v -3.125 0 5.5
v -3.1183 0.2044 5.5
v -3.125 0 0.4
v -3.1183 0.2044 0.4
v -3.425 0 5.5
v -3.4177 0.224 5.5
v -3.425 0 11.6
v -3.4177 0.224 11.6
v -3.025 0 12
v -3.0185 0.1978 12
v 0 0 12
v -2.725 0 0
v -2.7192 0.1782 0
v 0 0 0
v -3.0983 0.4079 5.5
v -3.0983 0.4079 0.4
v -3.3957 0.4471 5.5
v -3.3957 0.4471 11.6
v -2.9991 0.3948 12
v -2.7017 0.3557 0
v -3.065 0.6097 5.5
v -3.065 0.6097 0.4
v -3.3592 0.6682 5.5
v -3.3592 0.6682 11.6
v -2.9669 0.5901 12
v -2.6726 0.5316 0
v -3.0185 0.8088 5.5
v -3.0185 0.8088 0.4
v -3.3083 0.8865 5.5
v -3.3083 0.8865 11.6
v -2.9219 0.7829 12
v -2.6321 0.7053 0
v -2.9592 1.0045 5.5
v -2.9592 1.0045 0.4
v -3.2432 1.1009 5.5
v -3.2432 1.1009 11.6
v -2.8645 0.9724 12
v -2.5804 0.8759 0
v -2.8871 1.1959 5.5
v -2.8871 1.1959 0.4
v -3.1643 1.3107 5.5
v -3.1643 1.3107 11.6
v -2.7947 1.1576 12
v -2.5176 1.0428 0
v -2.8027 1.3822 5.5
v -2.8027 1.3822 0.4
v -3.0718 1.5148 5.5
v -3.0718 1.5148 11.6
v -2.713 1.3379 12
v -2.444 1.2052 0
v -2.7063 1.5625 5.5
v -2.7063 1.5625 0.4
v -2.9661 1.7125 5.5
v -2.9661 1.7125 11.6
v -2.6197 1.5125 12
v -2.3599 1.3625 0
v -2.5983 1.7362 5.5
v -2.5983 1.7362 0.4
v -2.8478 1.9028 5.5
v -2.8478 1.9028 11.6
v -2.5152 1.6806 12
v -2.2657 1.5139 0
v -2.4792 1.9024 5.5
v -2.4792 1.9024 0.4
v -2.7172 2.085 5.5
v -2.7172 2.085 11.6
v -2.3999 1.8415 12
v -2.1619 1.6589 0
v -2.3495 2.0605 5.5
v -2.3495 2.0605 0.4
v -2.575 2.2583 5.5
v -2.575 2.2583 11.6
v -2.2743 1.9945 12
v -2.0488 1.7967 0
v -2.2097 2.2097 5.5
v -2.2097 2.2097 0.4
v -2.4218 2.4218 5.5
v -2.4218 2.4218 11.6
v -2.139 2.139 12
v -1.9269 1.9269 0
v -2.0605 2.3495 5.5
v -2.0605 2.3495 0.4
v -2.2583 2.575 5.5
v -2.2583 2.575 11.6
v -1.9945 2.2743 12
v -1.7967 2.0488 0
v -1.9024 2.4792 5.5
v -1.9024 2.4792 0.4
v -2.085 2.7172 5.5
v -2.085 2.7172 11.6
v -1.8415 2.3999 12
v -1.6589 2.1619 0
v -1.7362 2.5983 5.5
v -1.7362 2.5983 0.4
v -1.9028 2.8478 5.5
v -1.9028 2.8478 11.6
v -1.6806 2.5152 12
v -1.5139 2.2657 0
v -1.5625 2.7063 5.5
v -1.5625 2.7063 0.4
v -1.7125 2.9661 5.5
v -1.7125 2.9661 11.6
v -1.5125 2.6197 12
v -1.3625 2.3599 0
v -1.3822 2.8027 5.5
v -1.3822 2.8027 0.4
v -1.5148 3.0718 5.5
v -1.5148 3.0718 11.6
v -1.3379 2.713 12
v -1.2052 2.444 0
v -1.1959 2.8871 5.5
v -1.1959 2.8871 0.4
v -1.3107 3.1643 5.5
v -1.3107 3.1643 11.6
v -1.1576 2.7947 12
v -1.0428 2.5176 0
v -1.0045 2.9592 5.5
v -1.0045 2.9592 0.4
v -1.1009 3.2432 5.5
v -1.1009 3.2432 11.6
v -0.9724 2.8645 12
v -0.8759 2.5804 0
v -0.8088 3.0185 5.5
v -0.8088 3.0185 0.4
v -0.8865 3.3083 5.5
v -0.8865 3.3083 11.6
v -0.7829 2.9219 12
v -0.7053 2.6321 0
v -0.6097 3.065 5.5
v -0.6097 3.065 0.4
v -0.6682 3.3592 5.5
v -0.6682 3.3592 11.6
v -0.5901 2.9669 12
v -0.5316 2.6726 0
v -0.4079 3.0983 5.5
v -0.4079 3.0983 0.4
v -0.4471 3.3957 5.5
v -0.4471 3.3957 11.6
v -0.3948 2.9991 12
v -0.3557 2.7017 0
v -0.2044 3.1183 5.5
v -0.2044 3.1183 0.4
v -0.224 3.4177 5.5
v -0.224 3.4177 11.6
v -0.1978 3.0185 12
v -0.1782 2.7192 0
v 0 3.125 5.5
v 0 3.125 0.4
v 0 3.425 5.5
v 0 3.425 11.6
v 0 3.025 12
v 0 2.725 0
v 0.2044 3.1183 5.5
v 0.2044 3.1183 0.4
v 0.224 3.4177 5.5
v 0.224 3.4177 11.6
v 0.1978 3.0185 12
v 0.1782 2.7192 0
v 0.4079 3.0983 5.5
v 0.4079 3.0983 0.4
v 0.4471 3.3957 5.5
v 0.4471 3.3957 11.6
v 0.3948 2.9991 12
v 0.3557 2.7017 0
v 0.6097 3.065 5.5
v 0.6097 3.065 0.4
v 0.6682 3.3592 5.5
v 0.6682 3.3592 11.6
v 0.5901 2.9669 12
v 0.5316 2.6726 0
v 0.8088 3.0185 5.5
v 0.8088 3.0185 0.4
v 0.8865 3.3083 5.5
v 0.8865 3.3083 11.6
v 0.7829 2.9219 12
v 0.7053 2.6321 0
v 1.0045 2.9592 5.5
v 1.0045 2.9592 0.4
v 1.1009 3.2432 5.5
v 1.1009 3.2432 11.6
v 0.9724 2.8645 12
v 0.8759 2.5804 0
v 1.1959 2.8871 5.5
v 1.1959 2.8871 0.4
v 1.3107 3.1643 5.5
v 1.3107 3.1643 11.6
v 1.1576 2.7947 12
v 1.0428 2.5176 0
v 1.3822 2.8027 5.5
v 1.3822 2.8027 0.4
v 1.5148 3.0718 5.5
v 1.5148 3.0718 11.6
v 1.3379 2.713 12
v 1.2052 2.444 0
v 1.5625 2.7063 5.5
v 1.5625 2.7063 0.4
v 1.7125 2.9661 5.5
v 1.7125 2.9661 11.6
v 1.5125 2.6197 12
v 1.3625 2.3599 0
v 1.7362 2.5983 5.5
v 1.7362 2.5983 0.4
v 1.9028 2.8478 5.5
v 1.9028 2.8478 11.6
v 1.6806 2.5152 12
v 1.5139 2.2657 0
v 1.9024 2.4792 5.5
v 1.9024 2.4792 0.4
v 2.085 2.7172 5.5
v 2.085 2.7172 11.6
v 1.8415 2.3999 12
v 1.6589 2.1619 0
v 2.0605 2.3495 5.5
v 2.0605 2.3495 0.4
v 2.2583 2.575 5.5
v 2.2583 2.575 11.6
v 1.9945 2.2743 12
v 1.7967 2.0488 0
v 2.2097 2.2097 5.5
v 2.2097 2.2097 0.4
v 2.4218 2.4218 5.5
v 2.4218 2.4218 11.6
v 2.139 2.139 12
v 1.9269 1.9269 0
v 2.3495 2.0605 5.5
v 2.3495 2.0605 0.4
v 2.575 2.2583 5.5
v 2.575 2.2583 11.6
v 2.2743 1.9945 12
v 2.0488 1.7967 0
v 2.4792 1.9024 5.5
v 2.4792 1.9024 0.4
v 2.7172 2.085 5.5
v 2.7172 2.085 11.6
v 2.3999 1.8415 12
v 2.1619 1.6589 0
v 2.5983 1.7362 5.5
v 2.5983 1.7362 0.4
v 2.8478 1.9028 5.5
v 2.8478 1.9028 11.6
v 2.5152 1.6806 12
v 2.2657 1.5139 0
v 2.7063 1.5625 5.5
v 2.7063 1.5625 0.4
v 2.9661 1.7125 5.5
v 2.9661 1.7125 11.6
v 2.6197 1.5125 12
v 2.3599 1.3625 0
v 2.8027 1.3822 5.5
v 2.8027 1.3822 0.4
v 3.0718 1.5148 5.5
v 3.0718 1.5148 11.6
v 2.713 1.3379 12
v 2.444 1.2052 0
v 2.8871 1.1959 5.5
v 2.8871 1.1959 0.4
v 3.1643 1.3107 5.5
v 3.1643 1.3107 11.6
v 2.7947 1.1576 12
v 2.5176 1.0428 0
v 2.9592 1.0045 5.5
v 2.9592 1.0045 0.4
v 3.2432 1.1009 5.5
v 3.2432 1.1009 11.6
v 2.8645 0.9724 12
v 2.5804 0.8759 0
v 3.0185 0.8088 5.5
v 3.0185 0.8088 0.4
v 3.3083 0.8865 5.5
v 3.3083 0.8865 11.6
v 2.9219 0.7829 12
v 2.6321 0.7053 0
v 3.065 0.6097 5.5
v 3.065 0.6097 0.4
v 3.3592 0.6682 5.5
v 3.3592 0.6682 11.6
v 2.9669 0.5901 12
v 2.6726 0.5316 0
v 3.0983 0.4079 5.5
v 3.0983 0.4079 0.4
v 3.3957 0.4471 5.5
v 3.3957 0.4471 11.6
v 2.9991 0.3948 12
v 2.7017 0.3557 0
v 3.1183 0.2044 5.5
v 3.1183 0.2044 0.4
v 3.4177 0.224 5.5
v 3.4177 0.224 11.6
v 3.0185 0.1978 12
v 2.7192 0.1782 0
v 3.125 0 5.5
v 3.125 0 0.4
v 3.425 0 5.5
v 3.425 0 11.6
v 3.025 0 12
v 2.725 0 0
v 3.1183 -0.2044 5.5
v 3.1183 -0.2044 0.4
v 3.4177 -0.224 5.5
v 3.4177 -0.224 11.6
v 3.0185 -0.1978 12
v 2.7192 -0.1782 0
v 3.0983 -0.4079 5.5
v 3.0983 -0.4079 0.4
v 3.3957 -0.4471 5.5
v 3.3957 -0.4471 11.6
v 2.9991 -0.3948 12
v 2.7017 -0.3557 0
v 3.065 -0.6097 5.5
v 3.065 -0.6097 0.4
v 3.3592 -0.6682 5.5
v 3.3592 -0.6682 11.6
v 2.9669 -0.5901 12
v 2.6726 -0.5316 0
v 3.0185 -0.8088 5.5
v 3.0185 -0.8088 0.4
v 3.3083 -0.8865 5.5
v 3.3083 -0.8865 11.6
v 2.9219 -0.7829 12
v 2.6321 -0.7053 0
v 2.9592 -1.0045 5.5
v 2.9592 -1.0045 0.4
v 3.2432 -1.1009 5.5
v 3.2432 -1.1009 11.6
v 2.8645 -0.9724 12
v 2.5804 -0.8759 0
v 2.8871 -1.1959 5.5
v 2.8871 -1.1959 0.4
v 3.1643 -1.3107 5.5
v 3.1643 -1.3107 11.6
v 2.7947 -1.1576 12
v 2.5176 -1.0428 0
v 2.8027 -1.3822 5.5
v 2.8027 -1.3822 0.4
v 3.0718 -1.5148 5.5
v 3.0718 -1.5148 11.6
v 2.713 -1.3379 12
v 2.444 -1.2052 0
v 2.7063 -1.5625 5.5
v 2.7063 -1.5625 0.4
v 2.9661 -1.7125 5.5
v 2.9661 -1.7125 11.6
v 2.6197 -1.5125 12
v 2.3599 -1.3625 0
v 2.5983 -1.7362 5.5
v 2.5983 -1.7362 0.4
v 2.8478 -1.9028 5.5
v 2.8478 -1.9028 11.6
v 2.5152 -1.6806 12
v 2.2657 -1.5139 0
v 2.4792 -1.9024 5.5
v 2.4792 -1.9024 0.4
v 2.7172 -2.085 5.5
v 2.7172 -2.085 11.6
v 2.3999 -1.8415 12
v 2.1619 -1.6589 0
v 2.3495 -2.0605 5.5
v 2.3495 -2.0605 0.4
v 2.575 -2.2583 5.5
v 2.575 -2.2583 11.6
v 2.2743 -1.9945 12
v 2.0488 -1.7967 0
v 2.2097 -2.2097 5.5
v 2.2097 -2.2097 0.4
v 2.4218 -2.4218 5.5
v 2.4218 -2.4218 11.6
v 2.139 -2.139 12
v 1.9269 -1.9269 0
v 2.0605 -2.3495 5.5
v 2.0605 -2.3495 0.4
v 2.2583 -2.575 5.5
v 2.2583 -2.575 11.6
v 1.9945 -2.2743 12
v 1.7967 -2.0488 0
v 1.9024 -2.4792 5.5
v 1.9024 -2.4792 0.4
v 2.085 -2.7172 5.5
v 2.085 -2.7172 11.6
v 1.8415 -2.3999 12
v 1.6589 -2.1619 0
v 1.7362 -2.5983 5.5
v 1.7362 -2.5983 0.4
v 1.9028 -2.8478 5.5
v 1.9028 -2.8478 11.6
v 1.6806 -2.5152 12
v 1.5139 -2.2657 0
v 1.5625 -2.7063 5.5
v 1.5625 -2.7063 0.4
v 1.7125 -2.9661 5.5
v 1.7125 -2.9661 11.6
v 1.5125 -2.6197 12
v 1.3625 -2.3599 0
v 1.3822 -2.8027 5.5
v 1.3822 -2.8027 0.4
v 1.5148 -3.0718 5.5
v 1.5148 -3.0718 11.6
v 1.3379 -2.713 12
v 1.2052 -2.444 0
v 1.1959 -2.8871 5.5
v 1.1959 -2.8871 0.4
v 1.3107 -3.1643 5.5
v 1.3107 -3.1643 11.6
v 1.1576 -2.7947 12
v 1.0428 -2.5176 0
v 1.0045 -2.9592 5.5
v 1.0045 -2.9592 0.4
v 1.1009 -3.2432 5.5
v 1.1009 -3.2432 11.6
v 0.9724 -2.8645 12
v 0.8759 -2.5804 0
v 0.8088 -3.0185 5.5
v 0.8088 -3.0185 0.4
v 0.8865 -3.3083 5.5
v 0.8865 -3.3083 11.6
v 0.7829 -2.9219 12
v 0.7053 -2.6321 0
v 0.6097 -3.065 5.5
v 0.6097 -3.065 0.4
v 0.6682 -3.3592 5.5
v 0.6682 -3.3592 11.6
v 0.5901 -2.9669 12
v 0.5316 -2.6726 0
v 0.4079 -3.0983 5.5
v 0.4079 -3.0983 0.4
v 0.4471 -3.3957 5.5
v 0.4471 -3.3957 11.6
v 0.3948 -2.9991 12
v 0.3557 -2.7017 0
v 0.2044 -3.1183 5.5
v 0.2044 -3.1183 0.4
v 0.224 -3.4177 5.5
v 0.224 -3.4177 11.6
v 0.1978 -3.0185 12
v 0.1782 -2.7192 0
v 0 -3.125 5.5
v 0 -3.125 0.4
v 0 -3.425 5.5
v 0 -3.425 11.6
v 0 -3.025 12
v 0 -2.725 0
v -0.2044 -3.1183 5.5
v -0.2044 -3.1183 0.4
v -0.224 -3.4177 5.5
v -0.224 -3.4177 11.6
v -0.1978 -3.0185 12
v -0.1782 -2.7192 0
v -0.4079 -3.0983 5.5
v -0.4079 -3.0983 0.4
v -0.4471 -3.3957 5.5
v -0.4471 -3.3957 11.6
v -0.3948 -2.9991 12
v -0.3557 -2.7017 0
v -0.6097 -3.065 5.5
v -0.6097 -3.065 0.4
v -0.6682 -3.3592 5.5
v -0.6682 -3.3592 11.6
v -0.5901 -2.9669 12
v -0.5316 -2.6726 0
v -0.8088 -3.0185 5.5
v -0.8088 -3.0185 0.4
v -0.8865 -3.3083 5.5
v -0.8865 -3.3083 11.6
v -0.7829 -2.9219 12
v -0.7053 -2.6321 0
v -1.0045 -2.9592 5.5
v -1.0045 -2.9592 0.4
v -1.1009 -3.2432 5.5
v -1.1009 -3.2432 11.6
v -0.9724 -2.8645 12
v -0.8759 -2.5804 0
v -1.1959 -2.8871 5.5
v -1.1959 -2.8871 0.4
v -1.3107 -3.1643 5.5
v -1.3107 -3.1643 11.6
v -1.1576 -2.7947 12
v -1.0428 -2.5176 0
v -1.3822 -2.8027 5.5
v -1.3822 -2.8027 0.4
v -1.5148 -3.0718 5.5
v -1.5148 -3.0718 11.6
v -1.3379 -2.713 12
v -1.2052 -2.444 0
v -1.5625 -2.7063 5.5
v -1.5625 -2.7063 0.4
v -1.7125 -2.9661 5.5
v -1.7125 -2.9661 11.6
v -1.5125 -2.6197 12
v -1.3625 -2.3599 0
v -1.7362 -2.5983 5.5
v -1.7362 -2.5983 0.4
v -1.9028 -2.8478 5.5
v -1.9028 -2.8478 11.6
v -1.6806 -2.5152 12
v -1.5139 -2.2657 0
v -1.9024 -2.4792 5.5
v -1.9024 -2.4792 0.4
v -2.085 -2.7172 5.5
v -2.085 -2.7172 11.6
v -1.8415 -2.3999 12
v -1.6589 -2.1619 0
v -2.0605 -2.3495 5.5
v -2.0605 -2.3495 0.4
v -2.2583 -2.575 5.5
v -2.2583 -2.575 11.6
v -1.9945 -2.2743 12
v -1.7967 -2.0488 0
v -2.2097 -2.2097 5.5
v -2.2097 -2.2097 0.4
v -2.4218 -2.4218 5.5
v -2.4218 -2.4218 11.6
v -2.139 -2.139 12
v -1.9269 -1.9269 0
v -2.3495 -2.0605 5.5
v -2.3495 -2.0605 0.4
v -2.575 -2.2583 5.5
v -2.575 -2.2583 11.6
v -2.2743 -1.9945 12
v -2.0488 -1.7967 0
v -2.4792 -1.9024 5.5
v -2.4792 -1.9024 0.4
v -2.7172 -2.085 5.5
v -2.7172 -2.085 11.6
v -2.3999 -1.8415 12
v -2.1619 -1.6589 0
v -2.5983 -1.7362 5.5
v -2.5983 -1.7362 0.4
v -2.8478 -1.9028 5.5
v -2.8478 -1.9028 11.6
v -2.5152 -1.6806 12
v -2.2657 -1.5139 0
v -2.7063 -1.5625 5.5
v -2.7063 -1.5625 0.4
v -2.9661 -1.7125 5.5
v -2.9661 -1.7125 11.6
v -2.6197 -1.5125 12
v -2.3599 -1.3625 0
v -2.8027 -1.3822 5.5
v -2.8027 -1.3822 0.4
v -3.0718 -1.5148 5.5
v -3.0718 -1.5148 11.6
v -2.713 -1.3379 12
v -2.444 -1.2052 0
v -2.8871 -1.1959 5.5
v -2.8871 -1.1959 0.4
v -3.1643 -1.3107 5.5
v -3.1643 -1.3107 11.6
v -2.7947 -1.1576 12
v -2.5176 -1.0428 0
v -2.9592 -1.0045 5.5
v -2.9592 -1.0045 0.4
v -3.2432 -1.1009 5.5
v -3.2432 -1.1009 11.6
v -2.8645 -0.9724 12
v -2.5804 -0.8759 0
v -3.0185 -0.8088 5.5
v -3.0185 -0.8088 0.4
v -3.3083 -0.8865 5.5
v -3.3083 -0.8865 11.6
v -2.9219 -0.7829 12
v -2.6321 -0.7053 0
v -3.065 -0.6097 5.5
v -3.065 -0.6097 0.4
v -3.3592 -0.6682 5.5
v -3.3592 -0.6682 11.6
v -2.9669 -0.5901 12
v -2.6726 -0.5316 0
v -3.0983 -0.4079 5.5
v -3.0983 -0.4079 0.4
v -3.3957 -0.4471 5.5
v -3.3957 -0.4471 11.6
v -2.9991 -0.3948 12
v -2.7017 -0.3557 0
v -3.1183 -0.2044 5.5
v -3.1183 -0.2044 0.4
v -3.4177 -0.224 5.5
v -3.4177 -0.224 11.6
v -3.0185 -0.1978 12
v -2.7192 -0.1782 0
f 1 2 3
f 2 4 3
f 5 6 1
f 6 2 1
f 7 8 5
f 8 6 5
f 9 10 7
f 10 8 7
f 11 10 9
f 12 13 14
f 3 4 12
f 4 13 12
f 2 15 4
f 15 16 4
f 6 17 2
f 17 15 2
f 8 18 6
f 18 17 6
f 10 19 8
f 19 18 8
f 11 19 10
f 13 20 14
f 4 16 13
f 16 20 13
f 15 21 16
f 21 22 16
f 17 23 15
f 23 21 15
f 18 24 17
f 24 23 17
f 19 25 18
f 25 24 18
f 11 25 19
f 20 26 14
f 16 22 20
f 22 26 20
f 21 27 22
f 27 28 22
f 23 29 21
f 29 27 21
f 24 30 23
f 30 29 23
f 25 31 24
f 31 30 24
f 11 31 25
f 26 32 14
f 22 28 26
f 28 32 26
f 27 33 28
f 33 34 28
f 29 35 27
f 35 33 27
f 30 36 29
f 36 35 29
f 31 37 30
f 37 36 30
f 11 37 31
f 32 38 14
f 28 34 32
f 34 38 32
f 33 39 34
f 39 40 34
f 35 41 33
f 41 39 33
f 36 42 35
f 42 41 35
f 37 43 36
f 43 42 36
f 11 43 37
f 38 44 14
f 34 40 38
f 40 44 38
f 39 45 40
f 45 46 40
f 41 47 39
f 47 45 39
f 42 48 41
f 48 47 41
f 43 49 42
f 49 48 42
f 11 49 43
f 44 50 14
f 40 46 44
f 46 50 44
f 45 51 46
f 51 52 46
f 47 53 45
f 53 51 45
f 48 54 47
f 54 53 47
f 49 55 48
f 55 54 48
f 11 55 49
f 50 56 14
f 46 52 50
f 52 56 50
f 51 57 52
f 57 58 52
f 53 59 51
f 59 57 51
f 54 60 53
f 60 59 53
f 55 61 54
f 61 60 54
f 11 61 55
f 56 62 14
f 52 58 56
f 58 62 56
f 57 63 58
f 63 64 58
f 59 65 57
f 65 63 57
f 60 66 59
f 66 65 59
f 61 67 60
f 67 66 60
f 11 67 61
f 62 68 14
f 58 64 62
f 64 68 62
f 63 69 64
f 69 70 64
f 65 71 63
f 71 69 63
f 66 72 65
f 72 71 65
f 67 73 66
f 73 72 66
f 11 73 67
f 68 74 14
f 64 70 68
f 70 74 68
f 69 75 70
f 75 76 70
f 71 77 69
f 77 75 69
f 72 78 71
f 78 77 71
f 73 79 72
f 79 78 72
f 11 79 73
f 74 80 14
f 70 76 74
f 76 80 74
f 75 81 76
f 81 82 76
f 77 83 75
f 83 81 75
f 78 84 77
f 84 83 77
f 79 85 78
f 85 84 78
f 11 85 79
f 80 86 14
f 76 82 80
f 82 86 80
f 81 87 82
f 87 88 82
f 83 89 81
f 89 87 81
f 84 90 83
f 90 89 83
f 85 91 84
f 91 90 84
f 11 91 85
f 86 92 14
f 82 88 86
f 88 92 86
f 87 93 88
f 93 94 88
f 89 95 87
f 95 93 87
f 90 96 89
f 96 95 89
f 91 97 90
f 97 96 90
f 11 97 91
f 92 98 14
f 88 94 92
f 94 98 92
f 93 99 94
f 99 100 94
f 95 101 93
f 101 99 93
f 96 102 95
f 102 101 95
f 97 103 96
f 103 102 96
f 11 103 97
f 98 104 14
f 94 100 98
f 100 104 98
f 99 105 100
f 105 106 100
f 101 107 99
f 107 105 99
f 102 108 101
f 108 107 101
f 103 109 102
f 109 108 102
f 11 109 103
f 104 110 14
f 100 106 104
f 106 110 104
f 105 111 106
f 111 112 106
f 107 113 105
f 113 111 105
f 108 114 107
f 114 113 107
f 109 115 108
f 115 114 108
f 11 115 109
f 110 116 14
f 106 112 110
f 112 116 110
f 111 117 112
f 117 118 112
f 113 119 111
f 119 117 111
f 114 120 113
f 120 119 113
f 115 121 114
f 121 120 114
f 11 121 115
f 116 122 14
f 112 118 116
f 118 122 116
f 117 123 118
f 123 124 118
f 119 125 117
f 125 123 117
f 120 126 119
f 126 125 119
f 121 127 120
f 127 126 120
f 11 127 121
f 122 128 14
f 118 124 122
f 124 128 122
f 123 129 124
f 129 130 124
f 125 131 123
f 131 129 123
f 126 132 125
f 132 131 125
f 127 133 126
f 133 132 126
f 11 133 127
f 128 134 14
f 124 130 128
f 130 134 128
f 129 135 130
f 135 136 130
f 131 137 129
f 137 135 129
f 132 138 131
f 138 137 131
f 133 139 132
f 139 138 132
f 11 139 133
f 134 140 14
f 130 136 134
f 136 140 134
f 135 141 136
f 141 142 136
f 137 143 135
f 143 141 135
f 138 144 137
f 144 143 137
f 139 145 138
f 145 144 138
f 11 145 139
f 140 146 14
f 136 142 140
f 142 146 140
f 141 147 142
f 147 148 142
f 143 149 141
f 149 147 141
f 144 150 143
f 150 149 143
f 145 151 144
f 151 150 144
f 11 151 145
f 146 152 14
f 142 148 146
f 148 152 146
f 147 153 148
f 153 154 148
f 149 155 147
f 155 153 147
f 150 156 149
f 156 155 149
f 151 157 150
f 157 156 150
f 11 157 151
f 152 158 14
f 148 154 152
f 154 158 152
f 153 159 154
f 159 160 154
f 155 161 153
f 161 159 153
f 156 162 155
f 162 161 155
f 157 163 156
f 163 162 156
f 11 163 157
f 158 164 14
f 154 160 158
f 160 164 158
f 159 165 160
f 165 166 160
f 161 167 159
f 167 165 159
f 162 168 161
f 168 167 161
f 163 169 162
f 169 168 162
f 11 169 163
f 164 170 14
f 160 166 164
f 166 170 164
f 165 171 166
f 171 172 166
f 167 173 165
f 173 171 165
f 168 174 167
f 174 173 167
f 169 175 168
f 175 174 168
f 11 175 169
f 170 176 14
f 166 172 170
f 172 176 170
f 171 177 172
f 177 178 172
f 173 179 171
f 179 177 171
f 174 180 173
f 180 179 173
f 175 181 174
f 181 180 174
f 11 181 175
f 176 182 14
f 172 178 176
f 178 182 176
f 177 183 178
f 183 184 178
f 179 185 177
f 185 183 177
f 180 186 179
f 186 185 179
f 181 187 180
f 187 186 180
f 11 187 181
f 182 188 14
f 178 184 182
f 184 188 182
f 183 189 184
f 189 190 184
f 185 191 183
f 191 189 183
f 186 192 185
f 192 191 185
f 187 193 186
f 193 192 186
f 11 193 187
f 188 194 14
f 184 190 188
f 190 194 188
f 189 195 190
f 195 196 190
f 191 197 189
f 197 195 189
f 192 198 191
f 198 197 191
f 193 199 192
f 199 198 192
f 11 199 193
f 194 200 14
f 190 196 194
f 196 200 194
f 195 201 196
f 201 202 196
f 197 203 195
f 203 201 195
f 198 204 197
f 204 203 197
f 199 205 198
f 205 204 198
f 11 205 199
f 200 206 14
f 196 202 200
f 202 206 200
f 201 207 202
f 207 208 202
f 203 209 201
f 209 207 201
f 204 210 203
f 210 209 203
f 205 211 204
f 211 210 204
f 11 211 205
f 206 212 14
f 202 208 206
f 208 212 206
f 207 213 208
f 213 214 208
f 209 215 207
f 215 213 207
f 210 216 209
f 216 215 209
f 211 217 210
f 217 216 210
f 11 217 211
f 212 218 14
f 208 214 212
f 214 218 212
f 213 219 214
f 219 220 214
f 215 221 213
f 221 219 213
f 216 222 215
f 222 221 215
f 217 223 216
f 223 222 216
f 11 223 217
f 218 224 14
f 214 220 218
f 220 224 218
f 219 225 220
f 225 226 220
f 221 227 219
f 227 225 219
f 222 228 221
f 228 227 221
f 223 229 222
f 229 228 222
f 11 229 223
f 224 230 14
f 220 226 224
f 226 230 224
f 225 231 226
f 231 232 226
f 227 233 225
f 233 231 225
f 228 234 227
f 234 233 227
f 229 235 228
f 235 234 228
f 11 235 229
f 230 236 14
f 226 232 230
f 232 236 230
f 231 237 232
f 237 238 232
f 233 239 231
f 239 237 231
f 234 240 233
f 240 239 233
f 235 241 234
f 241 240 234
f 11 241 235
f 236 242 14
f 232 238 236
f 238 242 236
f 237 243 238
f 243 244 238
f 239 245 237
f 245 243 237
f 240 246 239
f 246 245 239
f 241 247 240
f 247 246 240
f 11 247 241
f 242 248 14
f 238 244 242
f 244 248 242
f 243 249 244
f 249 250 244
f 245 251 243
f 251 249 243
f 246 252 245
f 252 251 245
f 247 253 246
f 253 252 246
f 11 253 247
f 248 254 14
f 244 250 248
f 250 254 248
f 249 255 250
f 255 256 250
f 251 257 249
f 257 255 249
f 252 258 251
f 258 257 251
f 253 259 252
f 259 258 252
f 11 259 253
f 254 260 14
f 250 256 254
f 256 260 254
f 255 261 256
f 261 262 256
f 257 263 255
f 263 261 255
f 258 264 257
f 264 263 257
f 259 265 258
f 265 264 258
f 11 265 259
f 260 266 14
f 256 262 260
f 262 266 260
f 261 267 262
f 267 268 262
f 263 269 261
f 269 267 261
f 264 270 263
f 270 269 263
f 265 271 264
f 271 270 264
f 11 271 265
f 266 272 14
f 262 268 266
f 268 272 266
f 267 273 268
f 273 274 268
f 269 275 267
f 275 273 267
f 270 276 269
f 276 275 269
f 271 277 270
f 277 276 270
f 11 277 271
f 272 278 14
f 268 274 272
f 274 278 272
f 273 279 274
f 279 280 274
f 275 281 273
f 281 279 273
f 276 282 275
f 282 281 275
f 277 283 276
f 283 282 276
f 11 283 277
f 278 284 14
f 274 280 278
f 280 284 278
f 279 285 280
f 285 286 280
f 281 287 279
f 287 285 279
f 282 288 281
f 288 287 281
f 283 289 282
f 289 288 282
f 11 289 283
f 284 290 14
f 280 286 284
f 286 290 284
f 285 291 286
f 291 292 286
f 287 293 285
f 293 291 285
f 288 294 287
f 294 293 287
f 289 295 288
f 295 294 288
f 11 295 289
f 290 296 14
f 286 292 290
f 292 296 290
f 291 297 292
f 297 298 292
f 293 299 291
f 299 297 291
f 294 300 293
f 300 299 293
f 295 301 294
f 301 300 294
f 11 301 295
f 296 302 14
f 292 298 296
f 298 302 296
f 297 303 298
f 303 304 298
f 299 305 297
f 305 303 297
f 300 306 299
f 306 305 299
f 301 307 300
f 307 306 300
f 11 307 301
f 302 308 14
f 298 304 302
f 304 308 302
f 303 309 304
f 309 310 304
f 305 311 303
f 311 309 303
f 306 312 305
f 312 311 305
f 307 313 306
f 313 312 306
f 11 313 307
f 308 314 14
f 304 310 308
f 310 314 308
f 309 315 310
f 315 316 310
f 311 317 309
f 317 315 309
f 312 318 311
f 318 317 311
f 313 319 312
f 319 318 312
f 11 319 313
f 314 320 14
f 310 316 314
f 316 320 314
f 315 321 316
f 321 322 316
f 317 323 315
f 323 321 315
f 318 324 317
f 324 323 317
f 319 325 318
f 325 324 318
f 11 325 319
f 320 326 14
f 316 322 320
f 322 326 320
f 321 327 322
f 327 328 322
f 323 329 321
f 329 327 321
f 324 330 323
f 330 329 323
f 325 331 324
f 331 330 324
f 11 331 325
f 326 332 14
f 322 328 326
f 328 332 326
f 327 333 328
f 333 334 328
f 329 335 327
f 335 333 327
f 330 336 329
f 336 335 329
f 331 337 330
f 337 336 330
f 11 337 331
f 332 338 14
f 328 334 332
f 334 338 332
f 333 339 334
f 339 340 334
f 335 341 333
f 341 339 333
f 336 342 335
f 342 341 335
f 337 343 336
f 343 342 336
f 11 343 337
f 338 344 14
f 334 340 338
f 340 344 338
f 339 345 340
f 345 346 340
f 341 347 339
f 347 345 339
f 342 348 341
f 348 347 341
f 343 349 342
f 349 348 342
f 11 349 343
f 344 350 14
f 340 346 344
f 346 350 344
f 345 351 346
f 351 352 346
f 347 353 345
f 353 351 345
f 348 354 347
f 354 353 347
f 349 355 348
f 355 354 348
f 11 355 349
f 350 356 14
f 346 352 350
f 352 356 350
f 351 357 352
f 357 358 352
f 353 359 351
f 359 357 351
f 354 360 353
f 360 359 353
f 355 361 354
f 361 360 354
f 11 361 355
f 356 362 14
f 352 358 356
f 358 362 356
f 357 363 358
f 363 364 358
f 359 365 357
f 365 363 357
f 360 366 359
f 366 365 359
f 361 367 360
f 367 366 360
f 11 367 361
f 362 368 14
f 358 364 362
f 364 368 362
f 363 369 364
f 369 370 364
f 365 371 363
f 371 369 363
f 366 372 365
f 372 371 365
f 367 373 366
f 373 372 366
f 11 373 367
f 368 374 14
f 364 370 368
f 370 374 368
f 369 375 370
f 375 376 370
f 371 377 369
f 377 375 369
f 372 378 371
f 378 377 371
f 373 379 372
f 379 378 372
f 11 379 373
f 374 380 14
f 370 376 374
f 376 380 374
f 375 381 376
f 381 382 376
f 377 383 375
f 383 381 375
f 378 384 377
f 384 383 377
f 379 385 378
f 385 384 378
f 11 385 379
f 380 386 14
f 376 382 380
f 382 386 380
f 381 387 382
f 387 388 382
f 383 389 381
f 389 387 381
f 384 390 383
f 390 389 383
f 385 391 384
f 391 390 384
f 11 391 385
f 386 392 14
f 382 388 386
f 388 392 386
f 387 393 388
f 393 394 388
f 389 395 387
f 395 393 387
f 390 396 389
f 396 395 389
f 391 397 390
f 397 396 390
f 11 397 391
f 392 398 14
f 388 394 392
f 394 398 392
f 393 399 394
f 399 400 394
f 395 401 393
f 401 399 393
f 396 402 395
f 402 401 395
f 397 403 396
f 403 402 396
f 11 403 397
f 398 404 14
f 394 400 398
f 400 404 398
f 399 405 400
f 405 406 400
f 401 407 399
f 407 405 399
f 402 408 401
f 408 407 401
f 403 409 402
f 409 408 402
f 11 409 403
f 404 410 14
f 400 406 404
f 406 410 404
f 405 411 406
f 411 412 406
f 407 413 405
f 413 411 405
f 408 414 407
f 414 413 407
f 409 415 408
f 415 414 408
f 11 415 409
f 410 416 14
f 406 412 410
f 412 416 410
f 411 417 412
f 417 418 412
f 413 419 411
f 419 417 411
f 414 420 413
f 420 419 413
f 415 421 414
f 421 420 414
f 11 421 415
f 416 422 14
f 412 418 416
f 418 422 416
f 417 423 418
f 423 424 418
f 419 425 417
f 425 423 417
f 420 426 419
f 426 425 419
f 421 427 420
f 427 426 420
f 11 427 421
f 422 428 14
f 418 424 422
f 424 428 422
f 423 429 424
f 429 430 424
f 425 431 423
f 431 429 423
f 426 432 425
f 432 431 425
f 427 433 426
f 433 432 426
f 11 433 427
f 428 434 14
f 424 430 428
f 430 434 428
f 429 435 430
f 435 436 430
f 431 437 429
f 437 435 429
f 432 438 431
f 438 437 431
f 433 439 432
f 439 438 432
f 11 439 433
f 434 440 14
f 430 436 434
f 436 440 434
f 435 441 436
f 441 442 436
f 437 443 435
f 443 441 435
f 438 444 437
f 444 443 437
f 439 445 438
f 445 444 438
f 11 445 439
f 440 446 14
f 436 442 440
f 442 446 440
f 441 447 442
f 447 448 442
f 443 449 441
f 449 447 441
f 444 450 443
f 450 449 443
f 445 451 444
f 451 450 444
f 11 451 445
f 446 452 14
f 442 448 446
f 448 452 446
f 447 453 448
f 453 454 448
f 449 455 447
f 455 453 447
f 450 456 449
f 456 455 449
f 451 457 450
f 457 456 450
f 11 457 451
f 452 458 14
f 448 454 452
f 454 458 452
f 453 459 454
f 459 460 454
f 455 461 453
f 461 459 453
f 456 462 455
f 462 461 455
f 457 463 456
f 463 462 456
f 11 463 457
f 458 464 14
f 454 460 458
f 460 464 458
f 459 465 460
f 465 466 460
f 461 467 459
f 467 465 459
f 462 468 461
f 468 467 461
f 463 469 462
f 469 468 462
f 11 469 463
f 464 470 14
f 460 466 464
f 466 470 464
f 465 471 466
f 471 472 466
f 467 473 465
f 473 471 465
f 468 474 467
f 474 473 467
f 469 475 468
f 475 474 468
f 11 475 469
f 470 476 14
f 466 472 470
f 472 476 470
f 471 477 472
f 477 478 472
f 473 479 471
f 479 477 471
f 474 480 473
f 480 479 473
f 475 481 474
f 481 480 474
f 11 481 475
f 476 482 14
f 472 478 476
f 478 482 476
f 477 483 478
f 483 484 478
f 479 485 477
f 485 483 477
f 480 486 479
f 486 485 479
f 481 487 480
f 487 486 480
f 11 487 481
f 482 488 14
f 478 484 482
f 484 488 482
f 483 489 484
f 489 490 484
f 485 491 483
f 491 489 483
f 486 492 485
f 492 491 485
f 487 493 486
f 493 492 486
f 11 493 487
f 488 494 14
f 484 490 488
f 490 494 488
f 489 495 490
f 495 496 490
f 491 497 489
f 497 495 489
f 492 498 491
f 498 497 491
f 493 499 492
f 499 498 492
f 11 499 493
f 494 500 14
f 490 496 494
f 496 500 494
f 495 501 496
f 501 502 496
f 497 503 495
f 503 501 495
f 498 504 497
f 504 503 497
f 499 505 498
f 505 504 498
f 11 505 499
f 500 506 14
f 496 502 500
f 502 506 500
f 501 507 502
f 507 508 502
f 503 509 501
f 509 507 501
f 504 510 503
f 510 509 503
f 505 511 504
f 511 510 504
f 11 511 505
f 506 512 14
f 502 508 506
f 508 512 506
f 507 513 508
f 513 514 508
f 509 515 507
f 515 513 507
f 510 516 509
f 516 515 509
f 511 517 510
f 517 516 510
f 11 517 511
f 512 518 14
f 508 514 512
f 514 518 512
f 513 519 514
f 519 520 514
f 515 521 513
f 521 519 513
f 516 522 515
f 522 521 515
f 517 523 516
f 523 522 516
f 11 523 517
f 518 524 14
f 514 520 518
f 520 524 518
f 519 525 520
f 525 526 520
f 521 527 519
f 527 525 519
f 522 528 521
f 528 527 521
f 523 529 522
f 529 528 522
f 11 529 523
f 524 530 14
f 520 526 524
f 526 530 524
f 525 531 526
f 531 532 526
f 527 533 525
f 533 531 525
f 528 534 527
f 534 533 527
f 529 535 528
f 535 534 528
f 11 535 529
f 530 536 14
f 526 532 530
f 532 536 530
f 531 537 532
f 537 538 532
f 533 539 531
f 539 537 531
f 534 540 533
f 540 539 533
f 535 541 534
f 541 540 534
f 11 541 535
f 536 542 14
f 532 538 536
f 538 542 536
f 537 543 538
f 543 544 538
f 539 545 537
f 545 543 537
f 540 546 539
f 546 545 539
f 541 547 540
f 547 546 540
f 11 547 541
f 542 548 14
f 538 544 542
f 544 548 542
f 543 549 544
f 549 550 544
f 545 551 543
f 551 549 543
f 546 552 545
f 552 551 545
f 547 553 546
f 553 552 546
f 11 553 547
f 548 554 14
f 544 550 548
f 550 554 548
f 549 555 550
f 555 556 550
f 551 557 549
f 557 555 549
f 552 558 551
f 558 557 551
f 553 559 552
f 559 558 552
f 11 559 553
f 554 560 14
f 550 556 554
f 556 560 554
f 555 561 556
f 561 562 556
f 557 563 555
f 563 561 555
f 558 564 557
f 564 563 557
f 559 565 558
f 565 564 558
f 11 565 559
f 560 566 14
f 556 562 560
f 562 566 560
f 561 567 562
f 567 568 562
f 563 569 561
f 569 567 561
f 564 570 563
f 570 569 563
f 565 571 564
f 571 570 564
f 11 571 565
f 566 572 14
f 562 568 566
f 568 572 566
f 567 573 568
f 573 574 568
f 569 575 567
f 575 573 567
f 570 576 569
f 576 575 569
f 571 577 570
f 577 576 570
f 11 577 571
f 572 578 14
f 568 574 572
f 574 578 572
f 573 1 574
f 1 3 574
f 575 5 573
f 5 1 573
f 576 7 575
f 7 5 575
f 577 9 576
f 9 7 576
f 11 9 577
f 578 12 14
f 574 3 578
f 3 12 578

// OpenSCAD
// file: ../lib/project/bic_eraser_plug.scad
// Reusable geometry for Bic mechanical pencil eraser replacement plugs.
// Z origin is at the bottom of the insert; +Z points toward the eraser cap.

module bic_eraser_plug(
  insert_diameter,
  insert_height,
  head_diameter = 0,
  head_height = 0,
  bottom_chamfer = 0.4,
  top_chamfer = 0.4
) {
  effective_head_diameter = head_diameter > 0 ? head_diameter : insert_diameter;
  effective_head_height = head_height > 0 ? head_height : 0;
  body_height = insert_height - effective_head_height;
  insert_radius = insert_diameter / 2;
  head_radius = effective_head_diameter / 2;
  bottom_chamfer_radius = min(bottom_chamfer, insert_radius, insert_height / 2);
  top_chamfer_radius = min(top_chamfer, head_radius, insert_height / 2);
  body_top_z = effective_head_height > 0 ? body_height : insert_height;
  top_start_z = insert_height - top_chamfer_radius;

  if (body_height <= 0) {
    assert(false, "insert_height must be larger than head_height");
  }

  rotate_extrude()
    polygon(concat(
      [[0, 0]],
      bottom_chamfer_radius > 0
        ? [[insert_radius - bottom_chamfer_radius, 0], [insert_radius, bottom_chamfer_radius]]
        : [[insert_radius, 0]],
      [[insert_radius, body_top_z]],
      effective_head_height > 0 && effective_head_diameter != insert_diameter
        ? [[head_radius, body_top_z]]
        : [],
      top_chamfer_radius > 0
        ? [[head_radius, top_start_z], [head_radius - top_chamfer_radius, insert_height]]
        : [[head_radius, insert_height]],
      [[0, insert_height]]
    ));
}
// main file
// Stepped plug with an eraser-sized insert and a pencil-top-sized head.

use <../lib/project/bic_eraser_plug.scad>;

// ---------- Public parameters (mm) ----------
insert_diameter = 6.25;  // Measured diameter minus 0.15 mm for fit tuning.
insert_height = 12.0;    // Total height from pencil opening to top of plug.
head_diameter = 6.85;    // Previous tuned diameter plus 0.35 mm for cap fit.
head_height = 6.5;       // Measured exposed head height plus 0.5 mm.
$fn = 96;

bic_eraser_plug(
  insert_diameter = insert_diameter,
  insert_height = insert_height,
  head_diameter = head_diameter,
  head_height = head_height
);
